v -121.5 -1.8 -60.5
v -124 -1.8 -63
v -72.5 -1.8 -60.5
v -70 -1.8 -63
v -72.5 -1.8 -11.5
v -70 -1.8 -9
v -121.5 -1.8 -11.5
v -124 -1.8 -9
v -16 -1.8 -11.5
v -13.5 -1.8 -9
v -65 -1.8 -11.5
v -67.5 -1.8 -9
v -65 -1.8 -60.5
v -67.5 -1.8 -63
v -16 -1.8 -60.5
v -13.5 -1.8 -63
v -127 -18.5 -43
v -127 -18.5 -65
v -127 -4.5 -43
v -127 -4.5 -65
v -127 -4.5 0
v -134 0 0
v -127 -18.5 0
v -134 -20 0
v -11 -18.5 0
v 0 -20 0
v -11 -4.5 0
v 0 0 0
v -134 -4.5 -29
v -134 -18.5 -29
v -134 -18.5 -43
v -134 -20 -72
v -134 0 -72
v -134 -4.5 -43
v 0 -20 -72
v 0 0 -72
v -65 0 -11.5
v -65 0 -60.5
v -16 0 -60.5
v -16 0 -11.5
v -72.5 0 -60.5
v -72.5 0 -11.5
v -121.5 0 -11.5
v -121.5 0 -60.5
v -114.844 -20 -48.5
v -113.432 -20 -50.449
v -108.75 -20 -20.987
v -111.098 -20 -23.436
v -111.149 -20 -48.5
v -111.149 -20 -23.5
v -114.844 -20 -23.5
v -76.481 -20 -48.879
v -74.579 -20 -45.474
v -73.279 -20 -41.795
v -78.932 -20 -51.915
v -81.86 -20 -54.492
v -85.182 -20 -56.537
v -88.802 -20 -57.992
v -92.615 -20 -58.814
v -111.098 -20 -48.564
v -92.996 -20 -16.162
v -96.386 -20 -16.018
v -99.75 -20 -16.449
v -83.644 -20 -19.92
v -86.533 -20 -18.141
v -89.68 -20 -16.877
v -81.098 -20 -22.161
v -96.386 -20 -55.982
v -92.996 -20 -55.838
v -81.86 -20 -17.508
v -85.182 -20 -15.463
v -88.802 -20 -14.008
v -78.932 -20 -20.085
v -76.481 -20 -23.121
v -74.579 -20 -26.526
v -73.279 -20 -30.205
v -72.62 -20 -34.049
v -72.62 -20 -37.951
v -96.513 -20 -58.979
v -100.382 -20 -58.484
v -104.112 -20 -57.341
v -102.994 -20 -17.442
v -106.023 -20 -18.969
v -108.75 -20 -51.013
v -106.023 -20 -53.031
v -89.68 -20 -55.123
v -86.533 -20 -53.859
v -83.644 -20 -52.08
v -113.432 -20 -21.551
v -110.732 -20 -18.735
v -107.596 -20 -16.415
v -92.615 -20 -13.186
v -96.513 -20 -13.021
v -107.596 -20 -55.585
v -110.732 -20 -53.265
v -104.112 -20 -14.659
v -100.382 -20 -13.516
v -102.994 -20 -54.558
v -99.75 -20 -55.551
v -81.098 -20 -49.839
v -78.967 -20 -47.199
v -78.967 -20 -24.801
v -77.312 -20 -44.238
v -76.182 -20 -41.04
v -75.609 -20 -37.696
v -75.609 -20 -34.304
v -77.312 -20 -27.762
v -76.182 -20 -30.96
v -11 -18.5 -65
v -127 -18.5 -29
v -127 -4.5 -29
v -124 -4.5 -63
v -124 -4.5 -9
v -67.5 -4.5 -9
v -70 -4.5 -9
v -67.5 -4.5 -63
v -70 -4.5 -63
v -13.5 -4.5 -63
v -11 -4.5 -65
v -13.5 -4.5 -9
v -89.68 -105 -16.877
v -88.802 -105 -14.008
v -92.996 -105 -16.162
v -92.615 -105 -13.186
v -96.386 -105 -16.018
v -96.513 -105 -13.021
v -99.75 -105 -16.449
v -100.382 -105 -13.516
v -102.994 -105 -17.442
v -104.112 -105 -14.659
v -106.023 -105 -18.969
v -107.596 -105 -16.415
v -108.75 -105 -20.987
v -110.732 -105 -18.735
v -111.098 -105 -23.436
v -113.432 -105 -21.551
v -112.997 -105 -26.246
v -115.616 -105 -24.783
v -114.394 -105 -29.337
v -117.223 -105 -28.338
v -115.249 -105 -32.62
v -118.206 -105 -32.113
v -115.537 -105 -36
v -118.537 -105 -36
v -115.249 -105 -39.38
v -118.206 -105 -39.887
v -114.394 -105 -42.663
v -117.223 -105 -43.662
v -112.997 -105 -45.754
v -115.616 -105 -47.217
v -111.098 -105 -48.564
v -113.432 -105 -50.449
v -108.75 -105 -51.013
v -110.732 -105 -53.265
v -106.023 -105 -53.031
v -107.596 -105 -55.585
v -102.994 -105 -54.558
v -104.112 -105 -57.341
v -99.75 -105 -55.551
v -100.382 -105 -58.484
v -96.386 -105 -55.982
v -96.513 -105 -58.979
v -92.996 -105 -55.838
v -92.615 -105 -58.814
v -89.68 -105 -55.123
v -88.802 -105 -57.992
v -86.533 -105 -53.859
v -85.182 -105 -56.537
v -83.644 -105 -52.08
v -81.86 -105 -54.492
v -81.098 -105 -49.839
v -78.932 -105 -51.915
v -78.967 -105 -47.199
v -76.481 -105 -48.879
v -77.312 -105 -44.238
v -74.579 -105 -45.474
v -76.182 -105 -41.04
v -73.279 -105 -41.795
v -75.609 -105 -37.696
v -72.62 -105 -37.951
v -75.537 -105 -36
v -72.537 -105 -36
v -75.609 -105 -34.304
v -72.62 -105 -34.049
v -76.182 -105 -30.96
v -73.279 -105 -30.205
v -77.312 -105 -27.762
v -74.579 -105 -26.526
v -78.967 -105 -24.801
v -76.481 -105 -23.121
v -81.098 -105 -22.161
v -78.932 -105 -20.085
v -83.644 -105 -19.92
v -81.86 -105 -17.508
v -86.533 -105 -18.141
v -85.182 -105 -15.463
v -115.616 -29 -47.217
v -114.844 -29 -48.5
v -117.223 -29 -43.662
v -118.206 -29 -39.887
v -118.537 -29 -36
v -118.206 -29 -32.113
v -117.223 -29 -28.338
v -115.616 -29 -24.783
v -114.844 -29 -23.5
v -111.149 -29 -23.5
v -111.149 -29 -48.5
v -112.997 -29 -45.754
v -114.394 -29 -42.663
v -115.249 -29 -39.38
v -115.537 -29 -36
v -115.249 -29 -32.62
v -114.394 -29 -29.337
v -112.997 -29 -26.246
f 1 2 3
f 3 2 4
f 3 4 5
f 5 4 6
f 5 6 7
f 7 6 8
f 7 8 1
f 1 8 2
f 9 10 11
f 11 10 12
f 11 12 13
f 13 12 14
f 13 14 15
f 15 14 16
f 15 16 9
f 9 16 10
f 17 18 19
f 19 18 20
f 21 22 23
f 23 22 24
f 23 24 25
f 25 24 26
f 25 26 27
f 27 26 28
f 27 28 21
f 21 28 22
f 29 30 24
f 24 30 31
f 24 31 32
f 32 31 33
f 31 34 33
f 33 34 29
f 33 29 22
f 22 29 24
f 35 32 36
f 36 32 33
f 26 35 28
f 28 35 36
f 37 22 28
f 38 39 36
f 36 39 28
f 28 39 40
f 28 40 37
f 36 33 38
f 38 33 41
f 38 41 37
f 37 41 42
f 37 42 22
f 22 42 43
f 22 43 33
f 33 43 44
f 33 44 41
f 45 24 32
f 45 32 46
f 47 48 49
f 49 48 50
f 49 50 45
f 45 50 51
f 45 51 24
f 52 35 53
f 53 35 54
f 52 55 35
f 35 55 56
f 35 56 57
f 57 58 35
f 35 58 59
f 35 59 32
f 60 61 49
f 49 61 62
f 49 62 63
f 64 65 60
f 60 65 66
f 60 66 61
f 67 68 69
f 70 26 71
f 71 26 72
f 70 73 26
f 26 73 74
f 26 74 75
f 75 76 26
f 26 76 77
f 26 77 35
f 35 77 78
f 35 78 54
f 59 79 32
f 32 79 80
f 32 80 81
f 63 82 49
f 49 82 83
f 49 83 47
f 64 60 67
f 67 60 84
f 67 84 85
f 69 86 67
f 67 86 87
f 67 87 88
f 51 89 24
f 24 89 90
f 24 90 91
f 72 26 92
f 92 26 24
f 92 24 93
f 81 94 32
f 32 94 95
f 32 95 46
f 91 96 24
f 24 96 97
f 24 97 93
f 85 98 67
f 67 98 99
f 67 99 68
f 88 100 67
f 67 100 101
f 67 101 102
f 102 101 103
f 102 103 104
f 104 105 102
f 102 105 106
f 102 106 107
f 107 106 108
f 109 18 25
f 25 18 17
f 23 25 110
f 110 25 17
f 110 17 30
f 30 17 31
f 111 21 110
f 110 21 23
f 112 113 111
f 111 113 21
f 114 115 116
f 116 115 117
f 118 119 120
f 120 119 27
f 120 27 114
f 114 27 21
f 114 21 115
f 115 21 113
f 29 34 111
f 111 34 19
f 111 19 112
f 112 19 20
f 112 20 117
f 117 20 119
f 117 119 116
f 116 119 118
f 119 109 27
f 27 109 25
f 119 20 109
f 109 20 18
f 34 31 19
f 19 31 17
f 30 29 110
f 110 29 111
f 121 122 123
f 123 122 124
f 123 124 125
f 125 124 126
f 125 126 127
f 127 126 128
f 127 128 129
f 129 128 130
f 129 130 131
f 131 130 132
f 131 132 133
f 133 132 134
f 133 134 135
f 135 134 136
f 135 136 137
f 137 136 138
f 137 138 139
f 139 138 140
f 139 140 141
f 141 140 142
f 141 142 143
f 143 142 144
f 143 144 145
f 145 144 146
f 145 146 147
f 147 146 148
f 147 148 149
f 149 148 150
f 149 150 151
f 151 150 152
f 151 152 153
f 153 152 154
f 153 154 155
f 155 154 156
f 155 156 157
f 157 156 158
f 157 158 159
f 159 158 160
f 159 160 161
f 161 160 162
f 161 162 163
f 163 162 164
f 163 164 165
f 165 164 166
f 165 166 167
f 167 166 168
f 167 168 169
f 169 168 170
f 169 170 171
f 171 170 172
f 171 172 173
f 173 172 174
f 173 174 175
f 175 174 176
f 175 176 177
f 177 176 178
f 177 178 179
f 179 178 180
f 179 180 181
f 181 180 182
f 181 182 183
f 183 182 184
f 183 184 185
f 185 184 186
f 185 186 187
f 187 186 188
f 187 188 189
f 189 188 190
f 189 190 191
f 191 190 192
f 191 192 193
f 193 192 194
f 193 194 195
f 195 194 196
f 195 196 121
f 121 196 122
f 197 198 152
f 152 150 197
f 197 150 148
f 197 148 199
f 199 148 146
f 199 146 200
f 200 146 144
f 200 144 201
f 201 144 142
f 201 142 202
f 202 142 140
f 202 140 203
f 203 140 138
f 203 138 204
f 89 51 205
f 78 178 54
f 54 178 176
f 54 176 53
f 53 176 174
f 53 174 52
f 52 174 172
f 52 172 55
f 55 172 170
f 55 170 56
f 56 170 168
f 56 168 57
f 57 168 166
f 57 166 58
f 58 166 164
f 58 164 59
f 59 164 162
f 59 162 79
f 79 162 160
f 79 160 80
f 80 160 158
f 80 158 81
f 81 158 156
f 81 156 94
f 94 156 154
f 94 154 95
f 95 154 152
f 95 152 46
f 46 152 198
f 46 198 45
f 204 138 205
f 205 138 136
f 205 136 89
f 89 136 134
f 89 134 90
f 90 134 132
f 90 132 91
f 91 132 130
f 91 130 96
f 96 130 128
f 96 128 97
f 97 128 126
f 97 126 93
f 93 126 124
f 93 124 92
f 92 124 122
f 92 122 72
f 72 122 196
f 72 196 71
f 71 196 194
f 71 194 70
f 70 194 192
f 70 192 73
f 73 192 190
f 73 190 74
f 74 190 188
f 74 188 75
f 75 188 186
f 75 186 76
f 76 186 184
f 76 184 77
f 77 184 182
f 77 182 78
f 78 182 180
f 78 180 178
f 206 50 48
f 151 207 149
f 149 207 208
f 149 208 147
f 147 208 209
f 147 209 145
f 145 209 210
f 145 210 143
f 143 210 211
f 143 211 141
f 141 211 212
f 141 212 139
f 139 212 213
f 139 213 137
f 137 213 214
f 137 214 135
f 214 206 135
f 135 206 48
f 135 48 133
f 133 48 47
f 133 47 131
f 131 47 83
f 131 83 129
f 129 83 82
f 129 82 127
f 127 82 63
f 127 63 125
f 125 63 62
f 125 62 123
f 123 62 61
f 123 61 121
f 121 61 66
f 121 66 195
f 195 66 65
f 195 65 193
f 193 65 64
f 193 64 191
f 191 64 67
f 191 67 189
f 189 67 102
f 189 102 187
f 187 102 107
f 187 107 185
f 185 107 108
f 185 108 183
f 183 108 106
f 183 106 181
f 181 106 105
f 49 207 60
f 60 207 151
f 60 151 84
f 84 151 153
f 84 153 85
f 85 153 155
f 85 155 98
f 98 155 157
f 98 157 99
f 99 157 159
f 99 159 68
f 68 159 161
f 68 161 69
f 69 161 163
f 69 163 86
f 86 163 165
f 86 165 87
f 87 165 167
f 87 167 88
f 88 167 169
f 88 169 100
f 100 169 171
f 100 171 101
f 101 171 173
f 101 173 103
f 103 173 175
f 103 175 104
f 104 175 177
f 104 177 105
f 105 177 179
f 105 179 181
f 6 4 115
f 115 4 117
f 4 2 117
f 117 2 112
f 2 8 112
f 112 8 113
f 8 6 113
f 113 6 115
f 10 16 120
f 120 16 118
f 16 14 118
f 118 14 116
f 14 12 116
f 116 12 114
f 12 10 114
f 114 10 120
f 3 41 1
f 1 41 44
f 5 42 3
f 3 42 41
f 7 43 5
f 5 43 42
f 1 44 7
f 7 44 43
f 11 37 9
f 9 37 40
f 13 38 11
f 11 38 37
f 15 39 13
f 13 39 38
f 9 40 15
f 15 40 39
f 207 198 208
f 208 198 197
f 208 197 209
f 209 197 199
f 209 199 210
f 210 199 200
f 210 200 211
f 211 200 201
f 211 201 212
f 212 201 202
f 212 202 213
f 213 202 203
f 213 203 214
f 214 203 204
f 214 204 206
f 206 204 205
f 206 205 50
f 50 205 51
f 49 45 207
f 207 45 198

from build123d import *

# Parameters (mm, degrees)
MAIN_BODY_DEPTH     = 16
SKETCH8_W           = 134
SKETCH8_H           = 4
COVER_DEPTH         = 72
SKETCH20_W          = 116
SKETCH20_H          = 14
CRYSTAL_SLOT_DEPTH  = 65
SKETCH9_W           = 14
SKETCH9_H           = 14
SIPM_WINDOW_DEPTH   = 7
SKETCH10_R          = 23
SKETCH10_R_2        = 20
TUBE_ADAPTER_DEPTH  = 85
SKETCH21_W          = 54
SKETCH21_H          = 54
FILTER_SLOT_DEPTH   = 2.7
SKETCH24_W          = 49
SKETCH24_H          = 49
FILTER_WINDOW_DEPTH = 1.8
WIRE_SLOT_REACH     = 146
SKETCH25_W          = 25
SKETCH25_H          = 9


with BuildPart() as part:
    # Sketch5 → Main Body (new body)
    with BuildSketch(Plane(origin=(0, 0, 0), x_dir=(1, 0, 0), z_dir=(0, 1, 0))):
        Polygon((-134, 0), (-124, 0), (-1.95326153, 0), (0, 0), (0, 72), (-134, 72), align=None)
    extrude(amount=-MAIN_BODY_DEPTH)

    # Sketch8 → Cover (add)
    with BuildSketch(Plane.XY):
        with Locations((-67, -18)):
            Rectangle(SKETCH8_W, SKETCH8_H)
    extrude(amount=-COVER_DEPTH)

    # Sketch20 → Crystal Slot (cut)
    with BuildSketch(Plane.XY):
        with Locations((-69, -11.5)):
            Rectangle(SKETCH20_W, SKETCH20_H)
    extrude(amount=-CRYSTAL_SLOT_DEPTH, mode=Mode.SUBTRACT)

    # Sketch9 → SiPM Window (cut)
    with BuildSketch(Plane.ZY.offset(134)):
        with Locations((-36, -11.5)):
            Rectangle(SKETCH9_W, SKETCH9_H)
    extrude(amount=-SIPM_WINDOW_DEPTH, mode=Mode.SUBTRACT)

    # Sketch10 → Tube Adapter (add)
    with BuildSketch(Plane.XZ.offset(20)):
        with Locations((-95.536800003, -36)):
            Circle(SKETCH10_R)
        with Locations((-95.536800003, -36)):
            Circle(SKETCH10_R_2, mode=Mode.SUBTRACT)
    extrude(amount=TUBE_ADAPTER_DEPTH)

    # Sketch21 → Filter Slot (cut)
    with BuildSketch(Plane.XZ.offset(4.5)):
        with Locations((-40.5, -36)):
            Rectangle(SKETCH21_W, SKETCH21_H)
        with Locations((-97, -36)):
            Rectangle(SKETCH21_W, SKETCH21_H)
    extrude(amount=-FILTER_SLOT_DEPTH, mode=Mode.SUBTRACT)

    # Sketch24 → Filter Window (cut)
    with BuildSketch(Plane.XZ.offset(1.8)):
        with Locations((-40.5, -36)):
            Rectangle(SKETCH24_W, SKETCH24_H)
        with Locations((-97, -36)):
            Rectangle(SKETCH24_W, SKETCH24_H)
    extrude(amount=-FILTER_WINDOW_DEPTH, mode=Mode.SUBTRACT)

    # Sketch25 → Wire Slot (cut, up to next)
    with BuildSketch(Plane.ZY.offset(144), mode=Mode.PRIVATE) as wire_slot_sk1:
        with Locations((-36, -24.5)):
            Rectangle(SKETCH25_W, SKETCH25_H)
    wire_slot_tool1 = extrude(wire_slot_sk1.sketch, amount=-WIRE_SLOT_REACH, mode=Mode.PRIVATE) & part.part
    add(wire_slot_tool1.solids().sort_by_distance((-144, -24.5, -36))[0], mode=Mode.SUBTRACT)


solid = part.part
